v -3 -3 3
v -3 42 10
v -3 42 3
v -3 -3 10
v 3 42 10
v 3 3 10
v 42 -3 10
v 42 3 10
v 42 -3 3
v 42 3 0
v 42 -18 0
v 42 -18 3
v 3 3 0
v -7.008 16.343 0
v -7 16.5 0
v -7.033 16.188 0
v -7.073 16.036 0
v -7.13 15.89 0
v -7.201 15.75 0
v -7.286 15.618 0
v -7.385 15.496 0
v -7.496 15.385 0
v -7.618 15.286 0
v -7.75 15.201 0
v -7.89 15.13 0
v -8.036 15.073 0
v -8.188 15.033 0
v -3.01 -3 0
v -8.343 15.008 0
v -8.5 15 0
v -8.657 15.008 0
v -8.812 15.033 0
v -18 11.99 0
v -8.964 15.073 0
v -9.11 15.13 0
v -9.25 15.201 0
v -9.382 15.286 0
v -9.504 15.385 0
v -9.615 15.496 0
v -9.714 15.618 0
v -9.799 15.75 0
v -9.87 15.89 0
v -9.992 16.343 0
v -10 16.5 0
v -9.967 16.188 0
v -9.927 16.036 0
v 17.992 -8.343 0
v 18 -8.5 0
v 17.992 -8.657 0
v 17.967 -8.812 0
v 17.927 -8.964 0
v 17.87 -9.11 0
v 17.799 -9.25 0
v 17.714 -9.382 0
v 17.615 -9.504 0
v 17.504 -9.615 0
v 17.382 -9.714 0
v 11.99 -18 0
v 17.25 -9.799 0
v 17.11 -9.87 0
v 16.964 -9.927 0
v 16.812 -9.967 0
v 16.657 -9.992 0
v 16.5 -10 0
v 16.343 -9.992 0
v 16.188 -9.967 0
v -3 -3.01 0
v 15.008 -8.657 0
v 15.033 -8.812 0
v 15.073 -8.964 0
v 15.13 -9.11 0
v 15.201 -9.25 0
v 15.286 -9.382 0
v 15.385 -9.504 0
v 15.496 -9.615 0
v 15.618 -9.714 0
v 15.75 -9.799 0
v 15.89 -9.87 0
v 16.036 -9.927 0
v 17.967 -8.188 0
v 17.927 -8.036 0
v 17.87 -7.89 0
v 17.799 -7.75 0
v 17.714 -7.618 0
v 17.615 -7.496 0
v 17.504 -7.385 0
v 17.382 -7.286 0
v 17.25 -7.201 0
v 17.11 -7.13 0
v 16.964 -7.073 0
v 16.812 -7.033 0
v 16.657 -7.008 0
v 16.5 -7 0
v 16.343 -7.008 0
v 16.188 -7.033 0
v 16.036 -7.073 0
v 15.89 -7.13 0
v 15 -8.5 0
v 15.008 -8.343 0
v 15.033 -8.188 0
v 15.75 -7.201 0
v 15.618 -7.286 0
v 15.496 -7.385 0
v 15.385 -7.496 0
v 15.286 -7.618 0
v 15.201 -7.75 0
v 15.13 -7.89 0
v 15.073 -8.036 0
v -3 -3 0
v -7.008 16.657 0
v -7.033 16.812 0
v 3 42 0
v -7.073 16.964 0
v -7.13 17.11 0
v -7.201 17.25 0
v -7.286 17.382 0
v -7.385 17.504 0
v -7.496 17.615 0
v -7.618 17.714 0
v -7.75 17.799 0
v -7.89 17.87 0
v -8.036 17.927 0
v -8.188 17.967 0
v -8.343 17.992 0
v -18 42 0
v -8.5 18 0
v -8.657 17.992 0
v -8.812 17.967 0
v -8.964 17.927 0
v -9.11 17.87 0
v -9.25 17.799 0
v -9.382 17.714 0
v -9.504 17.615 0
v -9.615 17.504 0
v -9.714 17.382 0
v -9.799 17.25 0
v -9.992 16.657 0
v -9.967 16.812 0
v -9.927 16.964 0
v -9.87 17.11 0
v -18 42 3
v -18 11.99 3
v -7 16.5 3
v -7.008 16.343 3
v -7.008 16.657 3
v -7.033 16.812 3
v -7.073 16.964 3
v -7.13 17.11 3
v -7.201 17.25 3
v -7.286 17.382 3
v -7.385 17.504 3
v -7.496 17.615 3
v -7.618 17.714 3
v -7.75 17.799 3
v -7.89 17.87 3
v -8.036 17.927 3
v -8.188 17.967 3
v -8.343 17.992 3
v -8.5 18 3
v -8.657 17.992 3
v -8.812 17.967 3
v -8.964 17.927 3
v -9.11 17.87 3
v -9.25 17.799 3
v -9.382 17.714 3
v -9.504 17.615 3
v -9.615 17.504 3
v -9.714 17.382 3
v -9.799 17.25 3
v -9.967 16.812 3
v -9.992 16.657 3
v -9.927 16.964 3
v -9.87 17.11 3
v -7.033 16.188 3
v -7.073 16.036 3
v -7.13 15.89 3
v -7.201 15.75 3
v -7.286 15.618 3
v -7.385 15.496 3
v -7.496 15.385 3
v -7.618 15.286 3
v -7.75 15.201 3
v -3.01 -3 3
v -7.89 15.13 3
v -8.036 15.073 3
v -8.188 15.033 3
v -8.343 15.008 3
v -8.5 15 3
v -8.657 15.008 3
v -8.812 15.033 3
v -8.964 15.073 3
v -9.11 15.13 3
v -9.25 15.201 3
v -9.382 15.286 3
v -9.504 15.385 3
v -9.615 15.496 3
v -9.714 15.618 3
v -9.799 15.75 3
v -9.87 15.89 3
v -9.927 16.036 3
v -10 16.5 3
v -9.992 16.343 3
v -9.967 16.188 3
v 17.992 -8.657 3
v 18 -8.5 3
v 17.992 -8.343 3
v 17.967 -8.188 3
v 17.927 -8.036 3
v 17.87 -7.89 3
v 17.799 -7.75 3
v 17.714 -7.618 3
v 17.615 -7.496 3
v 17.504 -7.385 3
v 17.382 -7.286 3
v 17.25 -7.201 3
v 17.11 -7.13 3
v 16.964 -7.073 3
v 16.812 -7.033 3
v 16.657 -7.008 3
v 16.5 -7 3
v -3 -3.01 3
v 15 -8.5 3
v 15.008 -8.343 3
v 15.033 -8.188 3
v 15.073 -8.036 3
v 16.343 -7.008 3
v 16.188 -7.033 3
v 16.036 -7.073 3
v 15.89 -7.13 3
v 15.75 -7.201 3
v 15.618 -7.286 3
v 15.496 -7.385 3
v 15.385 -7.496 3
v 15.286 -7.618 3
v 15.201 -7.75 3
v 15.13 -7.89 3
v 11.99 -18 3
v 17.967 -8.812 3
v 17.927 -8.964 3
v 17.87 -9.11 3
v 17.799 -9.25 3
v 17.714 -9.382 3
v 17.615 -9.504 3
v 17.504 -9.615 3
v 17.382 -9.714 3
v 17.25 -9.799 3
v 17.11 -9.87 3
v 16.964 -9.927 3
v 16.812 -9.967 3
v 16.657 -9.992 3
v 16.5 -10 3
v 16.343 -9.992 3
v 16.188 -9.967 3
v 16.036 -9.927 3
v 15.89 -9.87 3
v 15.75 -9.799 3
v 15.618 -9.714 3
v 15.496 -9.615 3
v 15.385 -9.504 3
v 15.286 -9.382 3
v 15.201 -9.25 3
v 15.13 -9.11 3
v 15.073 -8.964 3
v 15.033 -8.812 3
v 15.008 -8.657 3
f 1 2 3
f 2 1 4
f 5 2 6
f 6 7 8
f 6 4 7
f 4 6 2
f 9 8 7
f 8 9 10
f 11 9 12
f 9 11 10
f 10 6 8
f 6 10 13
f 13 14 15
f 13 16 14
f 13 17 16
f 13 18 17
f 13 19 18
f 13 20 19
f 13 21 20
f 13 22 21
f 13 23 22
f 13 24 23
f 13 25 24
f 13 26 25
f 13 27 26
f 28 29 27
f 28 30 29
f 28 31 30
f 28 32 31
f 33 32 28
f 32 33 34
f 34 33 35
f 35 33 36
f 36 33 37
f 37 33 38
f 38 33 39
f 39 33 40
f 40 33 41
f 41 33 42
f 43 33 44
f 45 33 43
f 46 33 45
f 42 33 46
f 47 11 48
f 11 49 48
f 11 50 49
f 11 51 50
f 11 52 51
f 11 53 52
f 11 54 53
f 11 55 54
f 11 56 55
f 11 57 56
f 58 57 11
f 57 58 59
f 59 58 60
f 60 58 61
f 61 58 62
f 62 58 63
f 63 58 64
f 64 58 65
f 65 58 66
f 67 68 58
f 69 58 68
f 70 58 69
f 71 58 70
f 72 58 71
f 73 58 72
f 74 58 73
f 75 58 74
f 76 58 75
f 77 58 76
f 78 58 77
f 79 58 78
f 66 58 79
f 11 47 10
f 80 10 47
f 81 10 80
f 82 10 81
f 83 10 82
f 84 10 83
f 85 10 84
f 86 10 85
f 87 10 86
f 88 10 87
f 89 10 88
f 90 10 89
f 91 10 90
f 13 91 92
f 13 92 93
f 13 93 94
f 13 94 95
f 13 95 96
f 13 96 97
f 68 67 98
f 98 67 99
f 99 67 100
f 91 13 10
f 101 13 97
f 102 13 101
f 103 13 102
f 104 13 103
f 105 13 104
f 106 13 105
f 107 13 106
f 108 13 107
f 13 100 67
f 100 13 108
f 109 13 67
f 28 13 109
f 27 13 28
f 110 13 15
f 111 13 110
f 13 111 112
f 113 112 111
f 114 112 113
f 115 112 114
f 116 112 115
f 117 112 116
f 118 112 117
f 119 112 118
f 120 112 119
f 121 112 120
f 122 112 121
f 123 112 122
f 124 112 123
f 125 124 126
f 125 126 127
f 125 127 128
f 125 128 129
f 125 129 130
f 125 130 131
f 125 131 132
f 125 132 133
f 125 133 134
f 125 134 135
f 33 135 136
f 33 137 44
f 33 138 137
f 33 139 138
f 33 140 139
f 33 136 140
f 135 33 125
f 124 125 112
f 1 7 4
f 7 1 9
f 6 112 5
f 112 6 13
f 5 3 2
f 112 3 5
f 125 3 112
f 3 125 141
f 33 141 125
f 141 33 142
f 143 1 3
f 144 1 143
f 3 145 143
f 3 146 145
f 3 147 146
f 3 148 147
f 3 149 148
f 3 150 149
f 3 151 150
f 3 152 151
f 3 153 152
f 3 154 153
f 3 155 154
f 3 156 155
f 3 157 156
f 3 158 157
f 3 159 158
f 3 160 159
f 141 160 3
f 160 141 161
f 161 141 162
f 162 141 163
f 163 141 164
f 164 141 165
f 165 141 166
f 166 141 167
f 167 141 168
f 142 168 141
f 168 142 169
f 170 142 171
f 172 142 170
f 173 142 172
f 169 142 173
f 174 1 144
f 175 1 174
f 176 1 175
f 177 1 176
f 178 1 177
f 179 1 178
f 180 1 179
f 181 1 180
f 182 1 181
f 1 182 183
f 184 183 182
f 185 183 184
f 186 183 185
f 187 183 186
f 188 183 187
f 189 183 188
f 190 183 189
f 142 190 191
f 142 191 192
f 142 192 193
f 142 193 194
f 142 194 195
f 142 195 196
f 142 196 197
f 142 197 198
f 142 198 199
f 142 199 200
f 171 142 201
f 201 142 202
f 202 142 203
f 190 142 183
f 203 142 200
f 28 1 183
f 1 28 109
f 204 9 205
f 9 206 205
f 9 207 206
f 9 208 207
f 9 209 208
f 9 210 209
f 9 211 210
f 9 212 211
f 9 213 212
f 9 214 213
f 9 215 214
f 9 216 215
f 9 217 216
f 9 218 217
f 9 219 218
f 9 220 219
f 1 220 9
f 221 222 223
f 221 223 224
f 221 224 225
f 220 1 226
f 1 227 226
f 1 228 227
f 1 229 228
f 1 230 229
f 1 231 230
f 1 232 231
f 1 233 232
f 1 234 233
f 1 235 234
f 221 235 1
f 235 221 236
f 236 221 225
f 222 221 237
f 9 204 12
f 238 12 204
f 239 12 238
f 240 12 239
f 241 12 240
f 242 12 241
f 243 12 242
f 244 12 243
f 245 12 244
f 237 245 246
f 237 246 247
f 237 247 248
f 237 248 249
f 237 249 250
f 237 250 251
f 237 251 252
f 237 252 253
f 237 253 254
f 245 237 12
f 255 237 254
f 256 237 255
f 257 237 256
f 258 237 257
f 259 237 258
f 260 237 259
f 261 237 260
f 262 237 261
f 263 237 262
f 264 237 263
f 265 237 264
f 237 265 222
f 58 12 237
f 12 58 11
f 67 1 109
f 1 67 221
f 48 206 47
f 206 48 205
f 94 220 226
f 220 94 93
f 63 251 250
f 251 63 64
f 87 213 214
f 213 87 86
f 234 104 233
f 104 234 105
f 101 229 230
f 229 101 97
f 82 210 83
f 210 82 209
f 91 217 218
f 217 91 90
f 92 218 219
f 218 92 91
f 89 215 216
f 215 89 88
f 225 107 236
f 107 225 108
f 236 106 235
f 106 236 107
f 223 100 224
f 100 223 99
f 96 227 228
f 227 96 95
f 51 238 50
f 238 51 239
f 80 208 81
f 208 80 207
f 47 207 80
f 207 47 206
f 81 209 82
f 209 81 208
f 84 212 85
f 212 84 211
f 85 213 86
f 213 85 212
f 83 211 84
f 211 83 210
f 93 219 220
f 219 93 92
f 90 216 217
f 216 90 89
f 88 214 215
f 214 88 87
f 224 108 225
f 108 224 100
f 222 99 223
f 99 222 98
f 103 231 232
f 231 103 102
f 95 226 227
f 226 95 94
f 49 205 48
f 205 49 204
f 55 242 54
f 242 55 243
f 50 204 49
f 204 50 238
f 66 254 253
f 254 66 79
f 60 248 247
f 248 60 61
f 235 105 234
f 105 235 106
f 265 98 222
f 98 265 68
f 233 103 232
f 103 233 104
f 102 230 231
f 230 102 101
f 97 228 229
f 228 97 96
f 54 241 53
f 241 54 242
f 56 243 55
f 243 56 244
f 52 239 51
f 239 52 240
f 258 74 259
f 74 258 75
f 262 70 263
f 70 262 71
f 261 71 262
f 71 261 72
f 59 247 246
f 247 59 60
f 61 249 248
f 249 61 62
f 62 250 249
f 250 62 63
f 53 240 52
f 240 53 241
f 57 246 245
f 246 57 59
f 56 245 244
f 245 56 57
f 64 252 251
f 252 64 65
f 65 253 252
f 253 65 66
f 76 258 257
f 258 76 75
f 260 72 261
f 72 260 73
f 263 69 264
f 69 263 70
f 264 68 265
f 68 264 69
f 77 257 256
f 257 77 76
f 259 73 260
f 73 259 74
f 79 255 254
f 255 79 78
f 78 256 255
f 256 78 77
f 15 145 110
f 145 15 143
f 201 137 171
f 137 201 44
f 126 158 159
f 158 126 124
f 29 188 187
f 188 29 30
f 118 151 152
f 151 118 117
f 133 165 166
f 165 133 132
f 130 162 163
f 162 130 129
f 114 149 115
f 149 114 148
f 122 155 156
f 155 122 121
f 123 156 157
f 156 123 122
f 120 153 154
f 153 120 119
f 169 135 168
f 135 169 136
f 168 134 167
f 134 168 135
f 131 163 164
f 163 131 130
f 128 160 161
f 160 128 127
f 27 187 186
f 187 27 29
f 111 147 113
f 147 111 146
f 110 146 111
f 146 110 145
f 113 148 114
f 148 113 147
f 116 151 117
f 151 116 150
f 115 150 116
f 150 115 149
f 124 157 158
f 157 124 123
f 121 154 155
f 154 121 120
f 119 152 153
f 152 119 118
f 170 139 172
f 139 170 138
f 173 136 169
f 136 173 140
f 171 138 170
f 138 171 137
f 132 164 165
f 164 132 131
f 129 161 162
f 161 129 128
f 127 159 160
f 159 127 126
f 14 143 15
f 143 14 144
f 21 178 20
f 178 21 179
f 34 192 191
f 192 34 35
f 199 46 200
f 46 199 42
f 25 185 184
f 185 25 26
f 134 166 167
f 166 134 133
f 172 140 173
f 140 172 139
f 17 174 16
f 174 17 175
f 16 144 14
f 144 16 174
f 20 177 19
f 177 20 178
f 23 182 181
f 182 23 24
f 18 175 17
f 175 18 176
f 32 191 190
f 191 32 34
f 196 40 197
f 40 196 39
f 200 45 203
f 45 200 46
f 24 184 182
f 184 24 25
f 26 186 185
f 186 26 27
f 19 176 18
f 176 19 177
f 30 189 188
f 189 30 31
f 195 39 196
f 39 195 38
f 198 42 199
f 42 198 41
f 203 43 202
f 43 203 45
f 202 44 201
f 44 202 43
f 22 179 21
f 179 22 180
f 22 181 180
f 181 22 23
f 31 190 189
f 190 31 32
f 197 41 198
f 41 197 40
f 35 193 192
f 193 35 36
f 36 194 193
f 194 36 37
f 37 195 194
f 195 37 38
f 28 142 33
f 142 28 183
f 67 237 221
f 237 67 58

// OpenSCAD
// Laser Halterunf Fuss


module Grundplatte() {
    translate([-18,-3,0])
    cube([15,45,3]);
}



module Loch(){
    $fn=60;
    translate([45/2-6,45/2-6,-5])
    cylinder(d=3,h=10);
}

module Halterung(){
    difference(){
        union(){
            translate([-3, -3, 0])
            cube([45, 6, 10]);
            translate([-3, -3, 0])
            cube([6, 45, 10]);
            
        }
    }
    difference() {
        union() {
            Grundplatte();
            translate([45-6,0,0])
            rotate([0,0,90])
            Grundplatte();
        }
        translate([0,-25,0])
        Loch();
        translate([-25,0,0])
        Loch();
        rotate([0,0,45])
        translate([-54.25,-23,-3])
        cube([50,50,60]);
    }
}
Halterung();
